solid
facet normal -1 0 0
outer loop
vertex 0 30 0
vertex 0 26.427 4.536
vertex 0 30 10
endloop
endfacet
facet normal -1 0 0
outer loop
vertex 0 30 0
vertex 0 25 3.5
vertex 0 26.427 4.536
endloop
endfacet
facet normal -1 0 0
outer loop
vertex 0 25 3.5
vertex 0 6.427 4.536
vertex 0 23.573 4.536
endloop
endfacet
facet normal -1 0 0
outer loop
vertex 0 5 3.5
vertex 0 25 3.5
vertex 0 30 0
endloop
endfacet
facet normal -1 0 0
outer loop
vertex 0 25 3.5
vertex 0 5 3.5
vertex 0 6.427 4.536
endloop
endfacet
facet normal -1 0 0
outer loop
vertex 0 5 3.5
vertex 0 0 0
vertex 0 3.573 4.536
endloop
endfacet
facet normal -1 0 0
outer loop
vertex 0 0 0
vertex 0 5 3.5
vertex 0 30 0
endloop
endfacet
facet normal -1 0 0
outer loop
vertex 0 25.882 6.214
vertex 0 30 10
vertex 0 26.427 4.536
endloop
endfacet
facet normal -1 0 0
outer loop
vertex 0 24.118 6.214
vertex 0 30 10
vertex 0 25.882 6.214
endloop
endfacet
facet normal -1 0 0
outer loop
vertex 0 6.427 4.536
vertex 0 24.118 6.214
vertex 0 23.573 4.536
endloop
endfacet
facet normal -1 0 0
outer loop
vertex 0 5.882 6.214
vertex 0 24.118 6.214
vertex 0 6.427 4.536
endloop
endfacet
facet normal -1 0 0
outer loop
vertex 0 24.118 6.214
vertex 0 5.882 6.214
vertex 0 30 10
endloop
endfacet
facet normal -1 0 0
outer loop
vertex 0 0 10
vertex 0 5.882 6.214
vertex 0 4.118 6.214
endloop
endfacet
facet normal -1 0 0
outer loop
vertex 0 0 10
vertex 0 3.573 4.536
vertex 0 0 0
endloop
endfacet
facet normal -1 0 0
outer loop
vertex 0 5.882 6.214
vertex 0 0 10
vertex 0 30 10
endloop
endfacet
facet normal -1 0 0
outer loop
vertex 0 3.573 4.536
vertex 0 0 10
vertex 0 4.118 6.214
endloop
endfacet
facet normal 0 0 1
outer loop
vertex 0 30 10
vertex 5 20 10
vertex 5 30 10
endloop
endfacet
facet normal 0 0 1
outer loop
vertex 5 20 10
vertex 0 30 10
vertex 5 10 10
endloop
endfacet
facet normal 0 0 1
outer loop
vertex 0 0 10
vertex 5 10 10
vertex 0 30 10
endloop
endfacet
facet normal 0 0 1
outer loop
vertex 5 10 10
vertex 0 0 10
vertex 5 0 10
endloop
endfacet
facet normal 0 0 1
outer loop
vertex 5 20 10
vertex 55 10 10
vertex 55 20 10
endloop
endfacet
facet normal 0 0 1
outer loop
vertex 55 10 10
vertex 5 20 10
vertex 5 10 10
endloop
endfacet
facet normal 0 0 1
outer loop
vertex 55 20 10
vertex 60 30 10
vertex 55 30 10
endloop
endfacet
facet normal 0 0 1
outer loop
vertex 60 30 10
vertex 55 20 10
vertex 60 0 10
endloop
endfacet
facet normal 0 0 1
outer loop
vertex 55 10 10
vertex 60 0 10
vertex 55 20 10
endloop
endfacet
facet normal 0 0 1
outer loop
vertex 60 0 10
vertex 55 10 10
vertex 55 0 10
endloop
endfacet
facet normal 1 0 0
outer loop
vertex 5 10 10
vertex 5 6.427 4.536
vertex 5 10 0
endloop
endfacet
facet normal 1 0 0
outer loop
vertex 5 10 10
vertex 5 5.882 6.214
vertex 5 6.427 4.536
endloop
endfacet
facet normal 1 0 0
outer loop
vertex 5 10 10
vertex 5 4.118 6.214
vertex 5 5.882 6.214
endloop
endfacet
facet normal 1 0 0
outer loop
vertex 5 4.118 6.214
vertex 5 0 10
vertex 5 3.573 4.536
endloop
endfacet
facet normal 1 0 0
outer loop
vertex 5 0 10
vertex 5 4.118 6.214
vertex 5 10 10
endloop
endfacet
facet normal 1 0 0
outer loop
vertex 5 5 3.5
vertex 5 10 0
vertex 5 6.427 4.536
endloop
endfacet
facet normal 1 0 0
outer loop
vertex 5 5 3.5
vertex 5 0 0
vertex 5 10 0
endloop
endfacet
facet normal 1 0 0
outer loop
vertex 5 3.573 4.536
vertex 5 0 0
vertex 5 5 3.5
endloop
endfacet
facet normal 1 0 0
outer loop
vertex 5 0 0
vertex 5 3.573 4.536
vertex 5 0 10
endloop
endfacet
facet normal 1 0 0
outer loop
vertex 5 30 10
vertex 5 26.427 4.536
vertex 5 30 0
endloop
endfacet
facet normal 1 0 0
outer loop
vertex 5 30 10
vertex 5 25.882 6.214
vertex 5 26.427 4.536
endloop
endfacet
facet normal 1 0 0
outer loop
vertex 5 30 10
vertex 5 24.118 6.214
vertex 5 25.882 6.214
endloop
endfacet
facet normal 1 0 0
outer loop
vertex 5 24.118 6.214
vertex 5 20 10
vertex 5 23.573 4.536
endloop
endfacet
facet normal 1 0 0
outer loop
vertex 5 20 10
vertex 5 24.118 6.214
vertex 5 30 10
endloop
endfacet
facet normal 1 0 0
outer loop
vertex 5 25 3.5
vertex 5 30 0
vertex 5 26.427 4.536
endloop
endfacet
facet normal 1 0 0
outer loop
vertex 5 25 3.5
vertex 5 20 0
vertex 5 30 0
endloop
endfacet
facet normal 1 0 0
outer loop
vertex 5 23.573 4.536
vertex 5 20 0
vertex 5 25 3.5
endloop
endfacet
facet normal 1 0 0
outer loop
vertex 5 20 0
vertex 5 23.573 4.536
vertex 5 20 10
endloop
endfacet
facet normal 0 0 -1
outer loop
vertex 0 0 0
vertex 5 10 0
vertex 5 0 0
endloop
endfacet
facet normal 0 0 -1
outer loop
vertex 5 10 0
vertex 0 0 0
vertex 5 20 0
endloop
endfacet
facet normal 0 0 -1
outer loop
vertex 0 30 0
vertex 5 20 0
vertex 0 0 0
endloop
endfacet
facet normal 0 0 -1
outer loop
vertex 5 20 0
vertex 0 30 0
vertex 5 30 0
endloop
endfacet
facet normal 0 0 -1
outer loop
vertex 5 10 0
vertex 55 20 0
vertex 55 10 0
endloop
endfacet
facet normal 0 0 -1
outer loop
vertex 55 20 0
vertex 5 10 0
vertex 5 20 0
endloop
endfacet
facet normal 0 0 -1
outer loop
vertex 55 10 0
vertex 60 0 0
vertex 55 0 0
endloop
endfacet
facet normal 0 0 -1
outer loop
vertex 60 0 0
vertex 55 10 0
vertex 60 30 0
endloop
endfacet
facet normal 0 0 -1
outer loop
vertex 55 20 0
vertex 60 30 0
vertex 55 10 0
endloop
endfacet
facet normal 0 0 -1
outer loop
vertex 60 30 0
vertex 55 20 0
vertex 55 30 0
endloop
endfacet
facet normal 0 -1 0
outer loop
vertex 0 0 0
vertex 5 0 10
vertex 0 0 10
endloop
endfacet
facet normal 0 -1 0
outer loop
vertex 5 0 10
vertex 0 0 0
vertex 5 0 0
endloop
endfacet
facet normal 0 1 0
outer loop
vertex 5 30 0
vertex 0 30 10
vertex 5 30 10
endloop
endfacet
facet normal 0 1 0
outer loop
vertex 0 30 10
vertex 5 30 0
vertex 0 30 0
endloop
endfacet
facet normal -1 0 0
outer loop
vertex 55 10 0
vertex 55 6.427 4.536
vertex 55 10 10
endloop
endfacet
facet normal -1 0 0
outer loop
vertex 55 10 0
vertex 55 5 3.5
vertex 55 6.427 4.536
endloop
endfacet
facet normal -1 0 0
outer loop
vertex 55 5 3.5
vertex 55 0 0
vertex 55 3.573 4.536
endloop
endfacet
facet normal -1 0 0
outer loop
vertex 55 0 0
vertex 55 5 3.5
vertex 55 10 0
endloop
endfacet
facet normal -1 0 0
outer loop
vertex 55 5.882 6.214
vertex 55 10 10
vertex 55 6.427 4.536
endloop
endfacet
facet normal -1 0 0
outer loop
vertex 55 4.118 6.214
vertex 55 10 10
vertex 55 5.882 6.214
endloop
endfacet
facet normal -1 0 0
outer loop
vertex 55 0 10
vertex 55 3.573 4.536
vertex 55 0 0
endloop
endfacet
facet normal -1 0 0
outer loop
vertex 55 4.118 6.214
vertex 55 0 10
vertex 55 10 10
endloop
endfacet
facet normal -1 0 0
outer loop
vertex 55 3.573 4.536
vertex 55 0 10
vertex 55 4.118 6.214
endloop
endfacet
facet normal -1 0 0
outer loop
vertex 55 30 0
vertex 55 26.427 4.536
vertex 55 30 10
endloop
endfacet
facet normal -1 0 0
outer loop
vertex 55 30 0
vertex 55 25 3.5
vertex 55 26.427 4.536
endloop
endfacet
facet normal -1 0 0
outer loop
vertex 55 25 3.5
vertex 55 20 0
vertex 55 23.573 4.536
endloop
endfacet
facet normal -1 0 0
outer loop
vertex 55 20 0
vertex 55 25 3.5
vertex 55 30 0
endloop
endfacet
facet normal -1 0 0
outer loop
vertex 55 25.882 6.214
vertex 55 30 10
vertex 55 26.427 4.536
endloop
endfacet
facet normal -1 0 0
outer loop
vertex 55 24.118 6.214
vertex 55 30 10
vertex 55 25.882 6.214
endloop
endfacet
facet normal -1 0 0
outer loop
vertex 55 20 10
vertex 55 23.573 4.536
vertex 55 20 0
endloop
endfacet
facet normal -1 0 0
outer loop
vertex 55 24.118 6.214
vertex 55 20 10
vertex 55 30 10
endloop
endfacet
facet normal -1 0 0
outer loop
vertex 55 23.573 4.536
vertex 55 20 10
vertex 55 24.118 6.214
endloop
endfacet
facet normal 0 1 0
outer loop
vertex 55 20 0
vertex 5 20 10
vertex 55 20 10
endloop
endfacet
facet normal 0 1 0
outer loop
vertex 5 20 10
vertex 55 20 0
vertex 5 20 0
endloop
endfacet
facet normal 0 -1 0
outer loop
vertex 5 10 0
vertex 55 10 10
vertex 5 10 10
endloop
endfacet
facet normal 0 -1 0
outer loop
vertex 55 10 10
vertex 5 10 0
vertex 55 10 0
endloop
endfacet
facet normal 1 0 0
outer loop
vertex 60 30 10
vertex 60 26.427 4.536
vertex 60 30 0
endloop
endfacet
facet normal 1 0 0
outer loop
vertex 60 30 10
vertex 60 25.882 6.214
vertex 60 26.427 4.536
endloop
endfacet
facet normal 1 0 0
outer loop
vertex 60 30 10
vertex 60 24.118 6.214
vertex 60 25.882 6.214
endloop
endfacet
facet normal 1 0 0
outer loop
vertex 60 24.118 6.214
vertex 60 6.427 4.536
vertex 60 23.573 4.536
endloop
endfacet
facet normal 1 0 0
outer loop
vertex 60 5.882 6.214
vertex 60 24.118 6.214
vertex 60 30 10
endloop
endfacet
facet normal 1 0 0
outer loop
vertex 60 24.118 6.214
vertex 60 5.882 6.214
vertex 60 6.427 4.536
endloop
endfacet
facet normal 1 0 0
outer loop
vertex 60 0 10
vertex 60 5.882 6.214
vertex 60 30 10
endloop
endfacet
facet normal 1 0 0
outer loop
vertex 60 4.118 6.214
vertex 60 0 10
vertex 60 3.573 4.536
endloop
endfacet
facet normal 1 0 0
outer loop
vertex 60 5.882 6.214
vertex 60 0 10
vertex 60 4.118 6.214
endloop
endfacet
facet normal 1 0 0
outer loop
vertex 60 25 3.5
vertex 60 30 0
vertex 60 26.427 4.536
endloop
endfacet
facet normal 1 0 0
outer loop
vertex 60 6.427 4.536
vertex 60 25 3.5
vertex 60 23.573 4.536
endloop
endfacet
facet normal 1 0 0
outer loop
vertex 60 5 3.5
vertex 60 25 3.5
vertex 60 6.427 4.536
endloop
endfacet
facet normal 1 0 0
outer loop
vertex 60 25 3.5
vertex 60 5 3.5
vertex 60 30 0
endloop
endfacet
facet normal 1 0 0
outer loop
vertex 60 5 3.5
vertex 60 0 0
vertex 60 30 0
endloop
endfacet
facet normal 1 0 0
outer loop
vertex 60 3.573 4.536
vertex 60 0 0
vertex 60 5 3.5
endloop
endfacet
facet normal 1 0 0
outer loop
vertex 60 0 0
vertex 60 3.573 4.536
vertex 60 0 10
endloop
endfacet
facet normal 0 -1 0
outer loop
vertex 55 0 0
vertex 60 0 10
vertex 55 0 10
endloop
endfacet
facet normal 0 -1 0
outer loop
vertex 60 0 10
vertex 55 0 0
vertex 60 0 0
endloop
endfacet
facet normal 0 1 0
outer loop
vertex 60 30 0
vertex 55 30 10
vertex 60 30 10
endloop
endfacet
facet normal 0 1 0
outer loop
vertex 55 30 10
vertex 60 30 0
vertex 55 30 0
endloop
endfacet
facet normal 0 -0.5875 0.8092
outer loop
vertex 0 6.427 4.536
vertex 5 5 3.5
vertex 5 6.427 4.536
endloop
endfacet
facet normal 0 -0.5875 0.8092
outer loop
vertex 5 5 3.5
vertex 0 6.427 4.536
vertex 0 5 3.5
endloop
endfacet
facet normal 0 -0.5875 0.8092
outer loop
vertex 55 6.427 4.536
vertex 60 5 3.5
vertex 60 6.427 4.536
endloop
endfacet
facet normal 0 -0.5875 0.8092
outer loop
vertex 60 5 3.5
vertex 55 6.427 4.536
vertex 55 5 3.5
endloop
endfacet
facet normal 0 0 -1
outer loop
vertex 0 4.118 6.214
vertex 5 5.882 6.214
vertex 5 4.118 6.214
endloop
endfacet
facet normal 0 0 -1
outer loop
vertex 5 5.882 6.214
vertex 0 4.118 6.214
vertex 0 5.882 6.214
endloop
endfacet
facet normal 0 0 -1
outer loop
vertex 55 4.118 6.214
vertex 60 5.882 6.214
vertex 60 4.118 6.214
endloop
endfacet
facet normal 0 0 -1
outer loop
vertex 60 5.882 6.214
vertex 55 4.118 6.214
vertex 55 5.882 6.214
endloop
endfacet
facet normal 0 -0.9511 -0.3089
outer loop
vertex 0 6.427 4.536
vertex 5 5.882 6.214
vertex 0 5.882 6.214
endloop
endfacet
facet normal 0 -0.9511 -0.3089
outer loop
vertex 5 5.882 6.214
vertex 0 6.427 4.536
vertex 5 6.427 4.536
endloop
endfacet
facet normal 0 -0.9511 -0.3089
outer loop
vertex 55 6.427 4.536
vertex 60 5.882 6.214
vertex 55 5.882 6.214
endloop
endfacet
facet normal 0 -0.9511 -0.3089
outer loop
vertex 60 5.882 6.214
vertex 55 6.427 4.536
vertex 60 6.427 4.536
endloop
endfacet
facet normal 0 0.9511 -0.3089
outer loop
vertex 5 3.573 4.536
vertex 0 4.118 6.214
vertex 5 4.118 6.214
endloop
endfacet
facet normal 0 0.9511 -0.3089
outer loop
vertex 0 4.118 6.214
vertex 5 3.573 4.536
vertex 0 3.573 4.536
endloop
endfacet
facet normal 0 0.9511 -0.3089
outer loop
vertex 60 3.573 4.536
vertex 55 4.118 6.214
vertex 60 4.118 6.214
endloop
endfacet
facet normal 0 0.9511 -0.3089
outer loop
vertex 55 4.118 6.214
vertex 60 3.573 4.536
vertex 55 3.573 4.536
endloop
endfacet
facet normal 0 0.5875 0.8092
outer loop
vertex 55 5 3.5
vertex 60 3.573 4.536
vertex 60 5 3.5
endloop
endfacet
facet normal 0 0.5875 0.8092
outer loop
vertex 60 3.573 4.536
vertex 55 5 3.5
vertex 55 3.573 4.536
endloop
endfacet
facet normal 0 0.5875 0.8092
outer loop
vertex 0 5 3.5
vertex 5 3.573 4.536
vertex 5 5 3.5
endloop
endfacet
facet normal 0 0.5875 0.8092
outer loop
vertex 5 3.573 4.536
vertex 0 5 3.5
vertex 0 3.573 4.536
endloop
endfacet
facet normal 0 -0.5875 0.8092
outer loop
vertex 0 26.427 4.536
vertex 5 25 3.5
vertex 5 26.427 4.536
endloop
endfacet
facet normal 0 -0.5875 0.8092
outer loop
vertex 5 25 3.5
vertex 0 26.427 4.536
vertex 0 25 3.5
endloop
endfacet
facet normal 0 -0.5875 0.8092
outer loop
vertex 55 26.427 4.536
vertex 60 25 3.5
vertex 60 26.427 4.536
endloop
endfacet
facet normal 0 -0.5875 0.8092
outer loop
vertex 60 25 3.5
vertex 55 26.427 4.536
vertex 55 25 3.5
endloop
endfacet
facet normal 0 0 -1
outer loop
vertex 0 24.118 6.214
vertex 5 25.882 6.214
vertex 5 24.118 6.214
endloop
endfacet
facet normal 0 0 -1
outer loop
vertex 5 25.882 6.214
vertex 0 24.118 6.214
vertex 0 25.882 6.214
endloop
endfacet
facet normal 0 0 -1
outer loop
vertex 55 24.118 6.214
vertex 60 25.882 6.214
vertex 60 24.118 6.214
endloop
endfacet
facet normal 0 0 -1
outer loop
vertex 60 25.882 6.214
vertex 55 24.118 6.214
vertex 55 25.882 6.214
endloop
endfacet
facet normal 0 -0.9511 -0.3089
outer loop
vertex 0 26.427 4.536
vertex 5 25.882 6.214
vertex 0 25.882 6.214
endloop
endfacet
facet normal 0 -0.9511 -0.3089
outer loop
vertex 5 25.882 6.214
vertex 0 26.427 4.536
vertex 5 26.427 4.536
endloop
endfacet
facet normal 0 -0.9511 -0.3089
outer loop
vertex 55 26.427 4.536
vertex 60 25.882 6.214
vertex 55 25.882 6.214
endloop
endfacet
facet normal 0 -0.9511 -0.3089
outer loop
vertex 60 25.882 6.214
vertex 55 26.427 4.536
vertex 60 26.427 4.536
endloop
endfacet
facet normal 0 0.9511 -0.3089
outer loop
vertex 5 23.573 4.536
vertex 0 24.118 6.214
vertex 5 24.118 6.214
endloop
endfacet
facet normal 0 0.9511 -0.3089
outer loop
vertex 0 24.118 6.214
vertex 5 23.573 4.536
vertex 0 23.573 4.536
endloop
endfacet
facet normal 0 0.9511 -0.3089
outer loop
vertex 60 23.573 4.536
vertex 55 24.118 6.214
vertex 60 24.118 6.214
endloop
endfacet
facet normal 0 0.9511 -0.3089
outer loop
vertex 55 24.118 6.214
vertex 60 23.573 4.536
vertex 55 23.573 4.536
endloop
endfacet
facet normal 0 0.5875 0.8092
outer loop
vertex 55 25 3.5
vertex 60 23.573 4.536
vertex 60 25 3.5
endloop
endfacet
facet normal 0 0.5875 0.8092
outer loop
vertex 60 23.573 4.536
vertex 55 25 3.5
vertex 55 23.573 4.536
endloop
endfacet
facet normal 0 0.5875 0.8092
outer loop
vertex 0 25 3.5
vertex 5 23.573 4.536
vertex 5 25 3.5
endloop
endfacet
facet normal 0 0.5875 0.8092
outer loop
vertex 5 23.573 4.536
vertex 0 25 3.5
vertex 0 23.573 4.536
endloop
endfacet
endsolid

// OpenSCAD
module main(length = 50) {
	difference() {
		union() {
			cube([5, 30, 10]);
			translate([5, 10, 0])
				cube([length, 10, 10]);
			translate([5+length, 0, 0])
				cube([5, 30, 10]);
		}

		for(y = [5, 25])
			translate([0, y, 5])
				rotate([0, 90, 0])
					cylinder(d = 3, h = 10 + length);
	}
}

main();
